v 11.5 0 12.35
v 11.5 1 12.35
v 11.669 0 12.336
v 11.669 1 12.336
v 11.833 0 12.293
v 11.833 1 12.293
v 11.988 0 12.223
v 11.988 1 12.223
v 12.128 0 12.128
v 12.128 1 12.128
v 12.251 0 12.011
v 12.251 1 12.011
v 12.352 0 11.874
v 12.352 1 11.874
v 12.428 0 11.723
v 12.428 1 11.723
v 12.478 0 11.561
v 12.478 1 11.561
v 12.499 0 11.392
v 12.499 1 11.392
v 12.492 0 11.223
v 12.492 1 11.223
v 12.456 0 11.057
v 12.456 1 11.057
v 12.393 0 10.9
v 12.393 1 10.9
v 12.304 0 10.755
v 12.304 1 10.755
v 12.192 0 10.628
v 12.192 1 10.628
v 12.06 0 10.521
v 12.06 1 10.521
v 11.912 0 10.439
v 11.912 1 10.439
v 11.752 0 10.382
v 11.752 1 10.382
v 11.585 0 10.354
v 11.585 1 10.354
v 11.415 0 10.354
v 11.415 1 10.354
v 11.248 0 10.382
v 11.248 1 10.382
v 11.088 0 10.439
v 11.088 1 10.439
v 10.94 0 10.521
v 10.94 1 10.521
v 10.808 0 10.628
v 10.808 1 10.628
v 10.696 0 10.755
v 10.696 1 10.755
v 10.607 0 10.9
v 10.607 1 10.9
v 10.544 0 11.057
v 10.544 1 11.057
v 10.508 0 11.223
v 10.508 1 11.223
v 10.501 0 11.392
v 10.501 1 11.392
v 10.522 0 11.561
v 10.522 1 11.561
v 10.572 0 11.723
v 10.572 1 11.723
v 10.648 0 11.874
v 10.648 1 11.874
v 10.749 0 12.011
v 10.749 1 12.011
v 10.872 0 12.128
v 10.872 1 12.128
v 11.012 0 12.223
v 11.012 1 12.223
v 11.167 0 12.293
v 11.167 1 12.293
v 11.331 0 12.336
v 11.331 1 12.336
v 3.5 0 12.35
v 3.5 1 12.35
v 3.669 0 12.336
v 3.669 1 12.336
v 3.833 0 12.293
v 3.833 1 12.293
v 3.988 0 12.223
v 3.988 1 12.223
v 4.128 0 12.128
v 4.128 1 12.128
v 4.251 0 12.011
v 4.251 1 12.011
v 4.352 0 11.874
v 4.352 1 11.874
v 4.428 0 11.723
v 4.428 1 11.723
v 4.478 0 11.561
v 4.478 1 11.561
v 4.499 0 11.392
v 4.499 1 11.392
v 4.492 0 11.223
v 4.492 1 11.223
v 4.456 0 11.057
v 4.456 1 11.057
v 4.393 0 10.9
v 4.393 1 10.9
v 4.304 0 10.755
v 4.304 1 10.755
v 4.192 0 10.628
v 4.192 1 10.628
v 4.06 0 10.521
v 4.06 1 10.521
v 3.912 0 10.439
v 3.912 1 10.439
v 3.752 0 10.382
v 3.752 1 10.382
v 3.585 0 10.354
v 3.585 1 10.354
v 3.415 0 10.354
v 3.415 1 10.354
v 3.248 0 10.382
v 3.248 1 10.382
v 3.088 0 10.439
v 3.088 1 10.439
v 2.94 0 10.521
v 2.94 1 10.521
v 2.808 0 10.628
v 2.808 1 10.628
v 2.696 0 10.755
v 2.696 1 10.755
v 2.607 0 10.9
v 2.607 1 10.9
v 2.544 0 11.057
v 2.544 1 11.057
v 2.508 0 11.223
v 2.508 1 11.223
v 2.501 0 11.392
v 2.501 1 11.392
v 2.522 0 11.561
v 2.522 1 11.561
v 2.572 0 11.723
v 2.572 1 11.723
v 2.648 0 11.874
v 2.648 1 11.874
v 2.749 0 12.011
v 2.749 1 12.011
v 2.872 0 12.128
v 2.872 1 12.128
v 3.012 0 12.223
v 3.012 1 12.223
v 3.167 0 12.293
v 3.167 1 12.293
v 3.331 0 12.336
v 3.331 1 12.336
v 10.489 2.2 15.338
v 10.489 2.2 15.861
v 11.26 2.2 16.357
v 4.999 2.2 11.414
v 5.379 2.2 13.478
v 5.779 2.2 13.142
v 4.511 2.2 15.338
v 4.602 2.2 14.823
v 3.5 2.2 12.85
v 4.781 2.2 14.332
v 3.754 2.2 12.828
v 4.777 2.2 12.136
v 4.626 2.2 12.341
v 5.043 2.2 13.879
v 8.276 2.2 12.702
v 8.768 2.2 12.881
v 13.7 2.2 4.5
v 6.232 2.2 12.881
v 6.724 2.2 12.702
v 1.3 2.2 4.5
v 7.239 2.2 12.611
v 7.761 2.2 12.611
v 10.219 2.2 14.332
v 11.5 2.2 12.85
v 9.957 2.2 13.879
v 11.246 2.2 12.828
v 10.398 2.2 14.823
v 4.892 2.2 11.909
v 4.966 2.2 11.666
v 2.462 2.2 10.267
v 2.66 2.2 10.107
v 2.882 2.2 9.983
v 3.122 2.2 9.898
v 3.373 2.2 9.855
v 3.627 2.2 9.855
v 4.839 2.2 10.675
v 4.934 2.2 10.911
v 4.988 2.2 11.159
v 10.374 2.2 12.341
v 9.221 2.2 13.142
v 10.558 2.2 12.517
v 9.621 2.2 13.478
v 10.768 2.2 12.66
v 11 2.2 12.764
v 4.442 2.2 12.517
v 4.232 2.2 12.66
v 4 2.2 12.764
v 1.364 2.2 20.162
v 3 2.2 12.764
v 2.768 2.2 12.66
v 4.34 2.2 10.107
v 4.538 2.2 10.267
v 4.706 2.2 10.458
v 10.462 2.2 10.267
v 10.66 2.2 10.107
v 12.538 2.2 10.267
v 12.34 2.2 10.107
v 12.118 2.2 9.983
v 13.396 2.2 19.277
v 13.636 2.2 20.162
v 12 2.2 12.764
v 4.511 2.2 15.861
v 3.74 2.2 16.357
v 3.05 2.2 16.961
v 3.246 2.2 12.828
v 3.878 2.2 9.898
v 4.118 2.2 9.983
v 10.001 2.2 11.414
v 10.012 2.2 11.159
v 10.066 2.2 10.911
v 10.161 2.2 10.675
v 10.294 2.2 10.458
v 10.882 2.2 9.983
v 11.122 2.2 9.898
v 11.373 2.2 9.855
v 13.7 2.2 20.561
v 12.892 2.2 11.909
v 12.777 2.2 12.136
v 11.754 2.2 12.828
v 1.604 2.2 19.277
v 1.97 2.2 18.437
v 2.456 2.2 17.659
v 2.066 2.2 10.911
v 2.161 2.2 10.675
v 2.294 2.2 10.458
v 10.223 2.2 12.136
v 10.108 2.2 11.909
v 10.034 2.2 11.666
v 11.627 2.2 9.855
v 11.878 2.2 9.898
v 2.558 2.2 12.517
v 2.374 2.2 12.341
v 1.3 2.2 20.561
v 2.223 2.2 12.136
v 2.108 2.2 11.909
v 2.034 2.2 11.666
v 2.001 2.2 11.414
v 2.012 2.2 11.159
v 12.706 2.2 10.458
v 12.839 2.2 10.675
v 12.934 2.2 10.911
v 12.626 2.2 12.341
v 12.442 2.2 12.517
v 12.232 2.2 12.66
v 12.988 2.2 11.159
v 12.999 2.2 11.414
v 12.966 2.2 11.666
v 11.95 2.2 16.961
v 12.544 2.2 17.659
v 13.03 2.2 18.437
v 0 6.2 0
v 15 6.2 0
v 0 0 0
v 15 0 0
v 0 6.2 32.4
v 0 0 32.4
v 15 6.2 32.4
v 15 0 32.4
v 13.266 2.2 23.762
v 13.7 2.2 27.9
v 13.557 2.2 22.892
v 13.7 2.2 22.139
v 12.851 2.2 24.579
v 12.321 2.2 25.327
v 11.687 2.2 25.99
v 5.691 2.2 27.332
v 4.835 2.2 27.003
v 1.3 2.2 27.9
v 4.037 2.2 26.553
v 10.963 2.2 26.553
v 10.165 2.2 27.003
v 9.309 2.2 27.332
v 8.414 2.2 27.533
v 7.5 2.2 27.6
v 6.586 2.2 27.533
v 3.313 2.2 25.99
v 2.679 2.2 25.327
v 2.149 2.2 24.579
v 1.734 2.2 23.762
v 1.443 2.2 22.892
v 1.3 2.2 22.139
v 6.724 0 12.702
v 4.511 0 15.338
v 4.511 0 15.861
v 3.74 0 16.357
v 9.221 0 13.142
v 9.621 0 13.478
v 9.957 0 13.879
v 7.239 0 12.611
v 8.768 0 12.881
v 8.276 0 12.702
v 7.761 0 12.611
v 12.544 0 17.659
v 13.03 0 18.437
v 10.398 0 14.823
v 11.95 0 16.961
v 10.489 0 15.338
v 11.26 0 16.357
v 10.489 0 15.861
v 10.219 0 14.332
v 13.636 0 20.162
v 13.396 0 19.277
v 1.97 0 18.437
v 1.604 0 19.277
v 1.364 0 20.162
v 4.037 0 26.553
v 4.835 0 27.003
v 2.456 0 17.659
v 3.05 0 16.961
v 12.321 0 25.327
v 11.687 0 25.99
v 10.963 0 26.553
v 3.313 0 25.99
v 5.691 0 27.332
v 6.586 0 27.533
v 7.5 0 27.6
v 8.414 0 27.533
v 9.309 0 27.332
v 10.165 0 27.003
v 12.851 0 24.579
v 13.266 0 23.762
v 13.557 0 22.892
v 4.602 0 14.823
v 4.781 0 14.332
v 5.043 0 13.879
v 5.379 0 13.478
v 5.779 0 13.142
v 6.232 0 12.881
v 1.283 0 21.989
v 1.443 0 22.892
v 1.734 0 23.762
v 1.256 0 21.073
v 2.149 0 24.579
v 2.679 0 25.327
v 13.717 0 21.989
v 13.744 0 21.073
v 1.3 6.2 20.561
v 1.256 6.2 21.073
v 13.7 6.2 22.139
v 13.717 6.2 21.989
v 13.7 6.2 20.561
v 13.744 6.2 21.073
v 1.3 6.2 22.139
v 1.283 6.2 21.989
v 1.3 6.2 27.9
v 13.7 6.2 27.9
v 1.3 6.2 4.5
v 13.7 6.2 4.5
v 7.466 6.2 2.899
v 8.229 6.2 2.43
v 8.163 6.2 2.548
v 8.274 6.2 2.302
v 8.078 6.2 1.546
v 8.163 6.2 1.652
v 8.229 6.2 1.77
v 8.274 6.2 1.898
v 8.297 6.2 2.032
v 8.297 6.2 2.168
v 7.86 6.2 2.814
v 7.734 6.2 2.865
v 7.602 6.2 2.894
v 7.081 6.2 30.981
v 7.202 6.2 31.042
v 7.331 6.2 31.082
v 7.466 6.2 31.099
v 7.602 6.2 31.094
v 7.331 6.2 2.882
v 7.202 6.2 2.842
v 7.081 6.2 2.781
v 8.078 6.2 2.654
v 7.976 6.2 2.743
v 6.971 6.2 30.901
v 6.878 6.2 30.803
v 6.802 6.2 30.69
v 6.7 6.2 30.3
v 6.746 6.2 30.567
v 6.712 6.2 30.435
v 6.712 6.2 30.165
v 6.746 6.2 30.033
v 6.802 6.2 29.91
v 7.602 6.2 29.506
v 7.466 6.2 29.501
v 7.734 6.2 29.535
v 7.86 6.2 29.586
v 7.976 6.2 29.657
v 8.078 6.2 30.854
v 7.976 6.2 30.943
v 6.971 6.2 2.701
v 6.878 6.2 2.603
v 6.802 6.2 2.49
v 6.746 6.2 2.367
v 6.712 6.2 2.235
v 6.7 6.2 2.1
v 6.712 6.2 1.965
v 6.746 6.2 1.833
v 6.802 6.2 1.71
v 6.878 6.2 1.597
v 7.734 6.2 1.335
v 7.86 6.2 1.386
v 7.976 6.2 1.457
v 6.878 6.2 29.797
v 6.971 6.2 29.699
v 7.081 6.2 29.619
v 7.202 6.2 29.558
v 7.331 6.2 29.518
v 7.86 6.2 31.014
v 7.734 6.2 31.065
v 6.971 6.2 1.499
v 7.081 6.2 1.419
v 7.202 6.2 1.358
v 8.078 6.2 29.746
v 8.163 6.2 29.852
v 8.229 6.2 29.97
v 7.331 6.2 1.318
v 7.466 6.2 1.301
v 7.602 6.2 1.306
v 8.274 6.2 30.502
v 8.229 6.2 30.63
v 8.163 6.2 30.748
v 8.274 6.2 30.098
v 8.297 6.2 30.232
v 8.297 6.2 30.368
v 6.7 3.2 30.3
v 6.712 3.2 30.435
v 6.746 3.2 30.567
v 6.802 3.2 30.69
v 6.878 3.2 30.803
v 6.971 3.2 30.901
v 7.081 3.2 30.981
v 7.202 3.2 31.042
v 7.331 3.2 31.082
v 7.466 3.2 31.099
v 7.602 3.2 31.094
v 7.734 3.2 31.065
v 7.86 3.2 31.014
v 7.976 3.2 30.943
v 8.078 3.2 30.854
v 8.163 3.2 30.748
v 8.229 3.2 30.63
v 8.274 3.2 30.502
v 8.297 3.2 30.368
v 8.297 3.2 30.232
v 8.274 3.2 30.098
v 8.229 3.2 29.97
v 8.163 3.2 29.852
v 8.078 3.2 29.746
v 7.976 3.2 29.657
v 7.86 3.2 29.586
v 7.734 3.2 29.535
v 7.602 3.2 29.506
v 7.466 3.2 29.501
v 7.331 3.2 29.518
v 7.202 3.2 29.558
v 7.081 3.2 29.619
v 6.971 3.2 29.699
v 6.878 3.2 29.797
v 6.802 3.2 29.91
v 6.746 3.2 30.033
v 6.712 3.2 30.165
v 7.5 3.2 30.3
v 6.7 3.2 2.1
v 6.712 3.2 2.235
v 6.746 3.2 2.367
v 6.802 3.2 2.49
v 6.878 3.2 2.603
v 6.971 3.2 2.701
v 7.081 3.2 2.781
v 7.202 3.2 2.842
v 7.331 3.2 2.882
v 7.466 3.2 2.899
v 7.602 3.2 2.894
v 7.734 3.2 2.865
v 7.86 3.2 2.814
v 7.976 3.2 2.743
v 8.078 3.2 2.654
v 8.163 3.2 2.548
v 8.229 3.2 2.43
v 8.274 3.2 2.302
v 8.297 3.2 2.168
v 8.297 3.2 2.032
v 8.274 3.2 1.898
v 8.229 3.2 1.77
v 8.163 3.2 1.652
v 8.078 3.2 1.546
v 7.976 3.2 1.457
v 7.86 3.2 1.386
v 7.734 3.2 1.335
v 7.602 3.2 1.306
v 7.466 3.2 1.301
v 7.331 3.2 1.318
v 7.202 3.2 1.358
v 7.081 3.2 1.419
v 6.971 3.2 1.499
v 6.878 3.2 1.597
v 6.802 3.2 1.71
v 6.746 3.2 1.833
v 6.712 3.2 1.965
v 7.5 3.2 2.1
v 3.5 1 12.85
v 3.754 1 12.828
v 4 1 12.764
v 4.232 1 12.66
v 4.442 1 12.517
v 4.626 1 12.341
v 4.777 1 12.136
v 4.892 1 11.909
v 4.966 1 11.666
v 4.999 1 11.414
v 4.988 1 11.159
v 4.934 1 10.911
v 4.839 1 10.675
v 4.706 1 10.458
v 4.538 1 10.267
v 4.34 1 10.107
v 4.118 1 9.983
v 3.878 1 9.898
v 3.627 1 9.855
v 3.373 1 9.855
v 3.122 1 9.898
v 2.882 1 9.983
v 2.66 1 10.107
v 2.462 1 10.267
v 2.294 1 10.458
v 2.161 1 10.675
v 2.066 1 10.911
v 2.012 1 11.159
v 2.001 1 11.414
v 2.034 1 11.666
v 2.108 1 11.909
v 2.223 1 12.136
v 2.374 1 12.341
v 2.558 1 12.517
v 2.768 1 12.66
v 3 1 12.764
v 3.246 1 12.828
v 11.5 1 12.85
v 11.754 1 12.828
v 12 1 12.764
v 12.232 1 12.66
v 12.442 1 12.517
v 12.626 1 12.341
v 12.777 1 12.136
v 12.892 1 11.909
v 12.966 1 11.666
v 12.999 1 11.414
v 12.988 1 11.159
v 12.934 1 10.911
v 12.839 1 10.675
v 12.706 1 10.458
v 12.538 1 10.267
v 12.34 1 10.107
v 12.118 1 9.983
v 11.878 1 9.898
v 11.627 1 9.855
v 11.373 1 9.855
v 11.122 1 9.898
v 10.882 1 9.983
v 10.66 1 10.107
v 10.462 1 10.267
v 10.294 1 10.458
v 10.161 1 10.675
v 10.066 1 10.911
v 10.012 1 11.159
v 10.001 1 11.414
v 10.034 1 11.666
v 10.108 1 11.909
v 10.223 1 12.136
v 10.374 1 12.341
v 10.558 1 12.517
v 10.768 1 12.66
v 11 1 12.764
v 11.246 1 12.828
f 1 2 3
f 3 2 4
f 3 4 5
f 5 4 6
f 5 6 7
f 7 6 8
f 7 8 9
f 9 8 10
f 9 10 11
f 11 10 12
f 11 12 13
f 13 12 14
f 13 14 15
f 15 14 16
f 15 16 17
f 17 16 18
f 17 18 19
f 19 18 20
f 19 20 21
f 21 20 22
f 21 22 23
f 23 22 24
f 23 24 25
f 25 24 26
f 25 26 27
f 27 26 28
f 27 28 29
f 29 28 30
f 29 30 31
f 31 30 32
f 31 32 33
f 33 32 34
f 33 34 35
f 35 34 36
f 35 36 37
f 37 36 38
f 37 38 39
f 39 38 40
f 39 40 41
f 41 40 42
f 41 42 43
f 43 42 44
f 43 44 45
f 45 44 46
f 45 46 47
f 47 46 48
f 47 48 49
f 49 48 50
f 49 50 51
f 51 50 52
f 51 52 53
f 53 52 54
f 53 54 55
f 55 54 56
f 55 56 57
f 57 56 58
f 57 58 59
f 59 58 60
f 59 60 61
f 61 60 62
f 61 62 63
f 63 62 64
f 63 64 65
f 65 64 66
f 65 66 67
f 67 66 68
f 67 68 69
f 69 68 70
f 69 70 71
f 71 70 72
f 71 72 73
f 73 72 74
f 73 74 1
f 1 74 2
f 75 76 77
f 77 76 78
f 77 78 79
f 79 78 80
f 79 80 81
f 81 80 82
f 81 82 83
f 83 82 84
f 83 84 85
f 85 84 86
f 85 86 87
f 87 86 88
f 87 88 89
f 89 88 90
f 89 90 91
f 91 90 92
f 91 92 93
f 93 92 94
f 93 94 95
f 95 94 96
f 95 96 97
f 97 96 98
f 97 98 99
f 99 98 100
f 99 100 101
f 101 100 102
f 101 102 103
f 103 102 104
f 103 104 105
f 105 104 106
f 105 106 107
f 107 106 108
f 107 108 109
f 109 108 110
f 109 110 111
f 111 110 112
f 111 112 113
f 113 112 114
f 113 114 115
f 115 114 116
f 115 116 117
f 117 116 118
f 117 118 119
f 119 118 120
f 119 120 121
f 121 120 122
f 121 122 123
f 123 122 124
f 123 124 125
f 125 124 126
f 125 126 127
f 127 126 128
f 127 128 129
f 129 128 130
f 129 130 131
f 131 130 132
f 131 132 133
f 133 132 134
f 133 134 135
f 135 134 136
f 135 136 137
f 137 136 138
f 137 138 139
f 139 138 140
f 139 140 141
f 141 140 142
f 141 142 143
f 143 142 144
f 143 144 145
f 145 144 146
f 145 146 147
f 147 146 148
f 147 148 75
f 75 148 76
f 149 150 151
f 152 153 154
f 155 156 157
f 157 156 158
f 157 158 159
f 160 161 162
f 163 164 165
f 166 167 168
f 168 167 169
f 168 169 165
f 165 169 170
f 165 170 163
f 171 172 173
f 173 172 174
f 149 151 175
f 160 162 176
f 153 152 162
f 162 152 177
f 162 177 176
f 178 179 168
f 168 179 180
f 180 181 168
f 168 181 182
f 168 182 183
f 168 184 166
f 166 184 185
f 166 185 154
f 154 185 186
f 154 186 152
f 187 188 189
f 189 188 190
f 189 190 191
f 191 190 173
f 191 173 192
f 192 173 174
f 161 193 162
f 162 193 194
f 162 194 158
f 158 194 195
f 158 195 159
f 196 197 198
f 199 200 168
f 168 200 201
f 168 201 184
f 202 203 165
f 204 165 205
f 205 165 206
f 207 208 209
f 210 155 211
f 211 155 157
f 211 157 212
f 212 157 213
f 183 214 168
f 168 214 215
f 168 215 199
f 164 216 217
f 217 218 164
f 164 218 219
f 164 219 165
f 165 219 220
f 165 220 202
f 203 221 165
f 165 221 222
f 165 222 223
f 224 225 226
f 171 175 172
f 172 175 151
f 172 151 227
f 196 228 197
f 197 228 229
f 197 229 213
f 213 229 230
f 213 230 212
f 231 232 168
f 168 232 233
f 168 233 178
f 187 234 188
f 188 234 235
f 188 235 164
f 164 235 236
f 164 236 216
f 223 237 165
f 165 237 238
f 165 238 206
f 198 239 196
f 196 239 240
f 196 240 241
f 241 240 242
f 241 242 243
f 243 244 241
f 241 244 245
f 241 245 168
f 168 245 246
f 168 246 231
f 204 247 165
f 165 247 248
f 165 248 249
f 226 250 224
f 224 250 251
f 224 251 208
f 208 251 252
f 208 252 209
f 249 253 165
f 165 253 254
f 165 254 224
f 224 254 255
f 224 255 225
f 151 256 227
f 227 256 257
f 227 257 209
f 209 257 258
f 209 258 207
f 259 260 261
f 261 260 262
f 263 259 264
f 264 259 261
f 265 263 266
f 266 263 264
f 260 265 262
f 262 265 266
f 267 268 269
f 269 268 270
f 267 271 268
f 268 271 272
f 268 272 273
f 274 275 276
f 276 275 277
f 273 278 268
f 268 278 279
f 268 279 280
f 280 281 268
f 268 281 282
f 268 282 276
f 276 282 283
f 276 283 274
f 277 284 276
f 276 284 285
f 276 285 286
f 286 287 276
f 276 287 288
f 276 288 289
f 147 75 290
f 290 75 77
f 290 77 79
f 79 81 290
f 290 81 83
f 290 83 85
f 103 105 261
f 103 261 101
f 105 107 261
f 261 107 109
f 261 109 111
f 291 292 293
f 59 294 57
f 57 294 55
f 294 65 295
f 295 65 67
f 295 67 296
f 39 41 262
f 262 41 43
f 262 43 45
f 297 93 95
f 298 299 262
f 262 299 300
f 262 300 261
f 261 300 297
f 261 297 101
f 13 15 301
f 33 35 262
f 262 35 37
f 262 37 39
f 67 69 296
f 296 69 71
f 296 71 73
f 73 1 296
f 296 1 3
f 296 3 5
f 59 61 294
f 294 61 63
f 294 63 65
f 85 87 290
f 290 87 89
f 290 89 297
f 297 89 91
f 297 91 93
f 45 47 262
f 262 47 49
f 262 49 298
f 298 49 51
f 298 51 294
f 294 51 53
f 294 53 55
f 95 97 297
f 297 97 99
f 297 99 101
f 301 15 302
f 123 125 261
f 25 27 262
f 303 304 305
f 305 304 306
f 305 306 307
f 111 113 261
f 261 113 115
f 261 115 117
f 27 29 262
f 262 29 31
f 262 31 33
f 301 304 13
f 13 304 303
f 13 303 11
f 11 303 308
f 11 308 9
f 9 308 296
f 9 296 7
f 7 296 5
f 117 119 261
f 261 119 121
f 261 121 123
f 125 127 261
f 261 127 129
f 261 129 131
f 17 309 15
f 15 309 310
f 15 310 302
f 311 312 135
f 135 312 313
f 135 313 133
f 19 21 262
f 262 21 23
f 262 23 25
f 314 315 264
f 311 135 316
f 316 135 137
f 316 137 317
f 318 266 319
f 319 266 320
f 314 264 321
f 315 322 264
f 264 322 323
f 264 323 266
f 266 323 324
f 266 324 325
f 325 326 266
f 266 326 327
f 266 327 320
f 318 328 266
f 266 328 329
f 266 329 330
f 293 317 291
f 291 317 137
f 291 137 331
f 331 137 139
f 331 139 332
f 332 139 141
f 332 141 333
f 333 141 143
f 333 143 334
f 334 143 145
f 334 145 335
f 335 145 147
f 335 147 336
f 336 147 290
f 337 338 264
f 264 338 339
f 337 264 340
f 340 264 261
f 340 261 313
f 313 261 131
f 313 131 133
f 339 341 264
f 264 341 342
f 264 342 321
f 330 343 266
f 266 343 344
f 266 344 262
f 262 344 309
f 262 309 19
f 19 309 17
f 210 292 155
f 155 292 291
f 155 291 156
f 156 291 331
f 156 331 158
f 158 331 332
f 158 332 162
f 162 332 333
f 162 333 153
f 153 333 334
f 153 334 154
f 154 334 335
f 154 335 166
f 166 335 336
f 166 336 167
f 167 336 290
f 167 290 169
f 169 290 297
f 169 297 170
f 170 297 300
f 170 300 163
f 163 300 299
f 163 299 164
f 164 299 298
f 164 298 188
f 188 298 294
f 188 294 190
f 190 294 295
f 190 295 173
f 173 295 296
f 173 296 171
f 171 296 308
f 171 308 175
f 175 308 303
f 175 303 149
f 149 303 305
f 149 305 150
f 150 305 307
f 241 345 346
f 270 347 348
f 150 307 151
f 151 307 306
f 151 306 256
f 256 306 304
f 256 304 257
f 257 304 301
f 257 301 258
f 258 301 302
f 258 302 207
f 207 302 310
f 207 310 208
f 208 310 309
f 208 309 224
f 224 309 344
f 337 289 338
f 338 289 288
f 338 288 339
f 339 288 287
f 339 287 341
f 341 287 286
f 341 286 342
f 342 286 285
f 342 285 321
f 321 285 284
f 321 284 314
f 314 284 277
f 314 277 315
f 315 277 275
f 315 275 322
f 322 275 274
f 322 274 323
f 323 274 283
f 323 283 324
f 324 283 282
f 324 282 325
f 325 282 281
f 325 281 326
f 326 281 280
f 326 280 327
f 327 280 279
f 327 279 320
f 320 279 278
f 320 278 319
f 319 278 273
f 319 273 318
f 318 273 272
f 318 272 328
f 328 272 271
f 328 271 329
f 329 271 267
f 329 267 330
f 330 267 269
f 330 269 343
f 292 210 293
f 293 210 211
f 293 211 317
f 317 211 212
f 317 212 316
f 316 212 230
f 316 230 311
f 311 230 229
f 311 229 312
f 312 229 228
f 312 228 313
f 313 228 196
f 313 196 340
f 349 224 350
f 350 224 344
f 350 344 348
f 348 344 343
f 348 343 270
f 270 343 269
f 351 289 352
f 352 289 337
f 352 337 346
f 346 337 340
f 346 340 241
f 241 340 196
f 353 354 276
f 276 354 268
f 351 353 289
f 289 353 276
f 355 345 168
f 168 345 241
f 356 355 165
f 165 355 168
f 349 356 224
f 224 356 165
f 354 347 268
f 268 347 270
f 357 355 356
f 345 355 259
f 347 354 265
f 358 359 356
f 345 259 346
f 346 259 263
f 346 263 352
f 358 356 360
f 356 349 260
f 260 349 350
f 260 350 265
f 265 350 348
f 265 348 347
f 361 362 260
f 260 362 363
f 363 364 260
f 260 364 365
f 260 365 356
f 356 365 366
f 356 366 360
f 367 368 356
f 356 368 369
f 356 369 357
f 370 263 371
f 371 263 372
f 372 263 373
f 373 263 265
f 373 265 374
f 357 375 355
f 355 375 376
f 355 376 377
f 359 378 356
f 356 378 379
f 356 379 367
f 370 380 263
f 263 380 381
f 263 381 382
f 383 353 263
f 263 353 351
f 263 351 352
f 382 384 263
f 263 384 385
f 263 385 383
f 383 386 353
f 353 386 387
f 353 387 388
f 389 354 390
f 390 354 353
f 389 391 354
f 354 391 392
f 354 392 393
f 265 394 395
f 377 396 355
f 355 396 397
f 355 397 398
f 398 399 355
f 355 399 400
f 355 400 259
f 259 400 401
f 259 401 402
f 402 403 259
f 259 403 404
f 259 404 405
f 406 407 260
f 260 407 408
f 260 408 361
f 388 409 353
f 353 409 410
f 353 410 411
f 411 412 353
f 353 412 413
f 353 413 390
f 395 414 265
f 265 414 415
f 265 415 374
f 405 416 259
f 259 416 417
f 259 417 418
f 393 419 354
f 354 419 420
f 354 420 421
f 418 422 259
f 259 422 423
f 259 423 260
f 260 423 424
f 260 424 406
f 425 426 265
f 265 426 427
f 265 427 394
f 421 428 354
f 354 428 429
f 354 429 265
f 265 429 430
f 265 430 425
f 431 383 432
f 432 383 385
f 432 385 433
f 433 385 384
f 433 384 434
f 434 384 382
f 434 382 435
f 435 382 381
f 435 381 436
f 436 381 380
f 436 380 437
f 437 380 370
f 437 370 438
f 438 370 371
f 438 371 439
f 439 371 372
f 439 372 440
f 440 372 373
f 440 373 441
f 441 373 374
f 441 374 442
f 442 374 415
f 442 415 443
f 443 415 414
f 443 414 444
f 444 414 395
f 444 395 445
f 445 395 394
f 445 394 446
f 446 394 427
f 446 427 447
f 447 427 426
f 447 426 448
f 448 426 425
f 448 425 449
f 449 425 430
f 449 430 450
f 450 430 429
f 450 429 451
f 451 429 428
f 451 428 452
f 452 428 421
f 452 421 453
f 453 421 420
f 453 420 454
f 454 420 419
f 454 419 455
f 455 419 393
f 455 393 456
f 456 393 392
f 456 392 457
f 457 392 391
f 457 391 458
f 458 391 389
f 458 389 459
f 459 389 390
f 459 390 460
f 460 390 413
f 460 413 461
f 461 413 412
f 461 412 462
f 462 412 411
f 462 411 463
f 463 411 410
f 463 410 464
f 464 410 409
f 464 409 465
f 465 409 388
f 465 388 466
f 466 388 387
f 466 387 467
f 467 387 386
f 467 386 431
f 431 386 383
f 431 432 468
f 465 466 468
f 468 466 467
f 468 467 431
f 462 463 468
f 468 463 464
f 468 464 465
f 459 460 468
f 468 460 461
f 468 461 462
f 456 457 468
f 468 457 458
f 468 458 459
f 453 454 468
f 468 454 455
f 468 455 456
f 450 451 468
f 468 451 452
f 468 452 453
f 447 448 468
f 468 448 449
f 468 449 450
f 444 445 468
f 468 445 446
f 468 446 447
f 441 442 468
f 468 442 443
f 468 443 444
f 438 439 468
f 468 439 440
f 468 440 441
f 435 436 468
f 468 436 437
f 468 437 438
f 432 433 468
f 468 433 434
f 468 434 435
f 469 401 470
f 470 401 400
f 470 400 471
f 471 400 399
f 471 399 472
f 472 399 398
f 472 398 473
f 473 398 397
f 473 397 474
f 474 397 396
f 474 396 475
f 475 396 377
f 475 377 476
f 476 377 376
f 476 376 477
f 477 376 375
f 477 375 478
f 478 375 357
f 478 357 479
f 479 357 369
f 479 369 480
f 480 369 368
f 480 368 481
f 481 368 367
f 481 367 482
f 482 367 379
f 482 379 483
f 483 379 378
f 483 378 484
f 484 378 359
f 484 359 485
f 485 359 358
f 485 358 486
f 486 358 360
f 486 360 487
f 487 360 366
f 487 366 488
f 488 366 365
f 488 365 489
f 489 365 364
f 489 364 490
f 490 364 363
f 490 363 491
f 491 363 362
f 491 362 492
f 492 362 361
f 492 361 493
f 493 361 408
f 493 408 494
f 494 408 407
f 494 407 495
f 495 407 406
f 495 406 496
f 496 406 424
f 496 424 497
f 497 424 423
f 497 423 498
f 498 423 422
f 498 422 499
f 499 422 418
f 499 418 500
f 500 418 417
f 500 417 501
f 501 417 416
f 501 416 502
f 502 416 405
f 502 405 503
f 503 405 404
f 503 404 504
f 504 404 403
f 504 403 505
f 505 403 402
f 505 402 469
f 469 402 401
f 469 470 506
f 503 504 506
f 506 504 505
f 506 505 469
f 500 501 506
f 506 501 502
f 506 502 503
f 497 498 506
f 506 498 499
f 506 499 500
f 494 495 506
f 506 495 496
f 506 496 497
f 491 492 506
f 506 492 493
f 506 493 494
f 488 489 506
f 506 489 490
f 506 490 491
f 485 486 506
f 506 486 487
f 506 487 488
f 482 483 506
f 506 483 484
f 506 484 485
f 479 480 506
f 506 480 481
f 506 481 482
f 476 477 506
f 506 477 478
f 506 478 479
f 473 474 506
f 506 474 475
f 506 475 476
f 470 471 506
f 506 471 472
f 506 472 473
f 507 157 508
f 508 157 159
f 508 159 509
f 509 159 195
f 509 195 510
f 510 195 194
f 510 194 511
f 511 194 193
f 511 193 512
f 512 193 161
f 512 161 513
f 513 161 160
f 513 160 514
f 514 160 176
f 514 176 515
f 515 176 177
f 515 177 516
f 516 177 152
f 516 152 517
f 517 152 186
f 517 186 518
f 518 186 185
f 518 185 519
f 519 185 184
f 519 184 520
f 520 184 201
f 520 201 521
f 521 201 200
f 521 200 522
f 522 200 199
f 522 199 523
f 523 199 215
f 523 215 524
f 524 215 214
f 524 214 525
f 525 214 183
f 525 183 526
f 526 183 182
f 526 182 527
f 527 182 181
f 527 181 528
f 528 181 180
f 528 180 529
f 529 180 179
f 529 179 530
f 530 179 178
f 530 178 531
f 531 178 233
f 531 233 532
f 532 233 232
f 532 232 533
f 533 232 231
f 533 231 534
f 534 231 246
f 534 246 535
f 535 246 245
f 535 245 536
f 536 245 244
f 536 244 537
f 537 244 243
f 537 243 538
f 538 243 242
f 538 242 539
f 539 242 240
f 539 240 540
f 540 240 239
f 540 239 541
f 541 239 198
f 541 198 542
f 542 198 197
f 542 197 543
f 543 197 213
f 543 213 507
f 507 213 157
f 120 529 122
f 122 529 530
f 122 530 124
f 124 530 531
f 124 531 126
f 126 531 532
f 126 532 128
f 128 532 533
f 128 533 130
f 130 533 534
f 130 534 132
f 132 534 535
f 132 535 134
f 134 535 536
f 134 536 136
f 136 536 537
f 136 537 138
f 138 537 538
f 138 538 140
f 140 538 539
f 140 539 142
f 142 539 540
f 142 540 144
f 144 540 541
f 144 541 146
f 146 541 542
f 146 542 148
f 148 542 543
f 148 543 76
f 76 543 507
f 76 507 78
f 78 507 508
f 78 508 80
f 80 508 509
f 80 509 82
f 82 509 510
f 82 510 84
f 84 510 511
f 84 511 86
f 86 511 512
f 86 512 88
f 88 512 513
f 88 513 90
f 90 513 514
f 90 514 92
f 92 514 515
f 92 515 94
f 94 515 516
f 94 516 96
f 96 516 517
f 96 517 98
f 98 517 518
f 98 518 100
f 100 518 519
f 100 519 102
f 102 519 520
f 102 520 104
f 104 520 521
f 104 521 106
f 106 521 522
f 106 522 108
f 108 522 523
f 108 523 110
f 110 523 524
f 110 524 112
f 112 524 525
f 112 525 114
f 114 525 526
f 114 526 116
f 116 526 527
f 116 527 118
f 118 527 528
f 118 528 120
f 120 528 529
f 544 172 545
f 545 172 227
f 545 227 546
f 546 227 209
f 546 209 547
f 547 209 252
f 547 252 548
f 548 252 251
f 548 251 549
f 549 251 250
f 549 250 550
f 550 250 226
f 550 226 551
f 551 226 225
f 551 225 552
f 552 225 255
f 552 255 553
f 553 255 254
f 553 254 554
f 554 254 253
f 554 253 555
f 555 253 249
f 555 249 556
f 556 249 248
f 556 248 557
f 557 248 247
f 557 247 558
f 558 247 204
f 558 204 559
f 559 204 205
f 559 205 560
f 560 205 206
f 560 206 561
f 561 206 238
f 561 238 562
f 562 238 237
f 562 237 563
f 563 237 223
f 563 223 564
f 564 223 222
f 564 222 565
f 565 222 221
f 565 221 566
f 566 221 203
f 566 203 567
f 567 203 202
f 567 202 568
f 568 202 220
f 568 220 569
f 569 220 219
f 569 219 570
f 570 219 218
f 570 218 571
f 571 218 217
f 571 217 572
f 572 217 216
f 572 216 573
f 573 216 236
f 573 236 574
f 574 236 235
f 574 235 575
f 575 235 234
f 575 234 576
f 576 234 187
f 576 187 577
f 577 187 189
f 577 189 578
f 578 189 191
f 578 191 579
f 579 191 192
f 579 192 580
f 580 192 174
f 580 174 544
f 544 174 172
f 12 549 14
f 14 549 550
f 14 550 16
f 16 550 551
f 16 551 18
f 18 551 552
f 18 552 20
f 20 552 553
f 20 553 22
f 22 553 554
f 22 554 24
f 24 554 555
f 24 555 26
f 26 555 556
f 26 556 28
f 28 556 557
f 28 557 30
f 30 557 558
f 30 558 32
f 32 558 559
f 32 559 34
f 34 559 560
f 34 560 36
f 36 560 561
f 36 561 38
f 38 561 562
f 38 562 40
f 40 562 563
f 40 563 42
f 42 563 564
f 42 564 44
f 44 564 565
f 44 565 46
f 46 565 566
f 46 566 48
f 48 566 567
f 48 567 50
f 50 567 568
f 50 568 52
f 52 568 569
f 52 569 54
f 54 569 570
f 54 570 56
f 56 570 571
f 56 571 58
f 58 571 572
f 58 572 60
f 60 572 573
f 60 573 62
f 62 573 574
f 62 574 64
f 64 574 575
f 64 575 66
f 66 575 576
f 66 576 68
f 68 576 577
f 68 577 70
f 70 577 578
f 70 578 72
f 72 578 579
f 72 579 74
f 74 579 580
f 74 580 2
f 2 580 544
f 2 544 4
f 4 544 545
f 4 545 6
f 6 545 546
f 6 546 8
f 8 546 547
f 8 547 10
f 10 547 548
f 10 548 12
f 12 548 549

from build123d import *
from build123d.topology import SkipClean

# Parameters (mm, degrees)
SKETCH_1_W          = 15
SKETCH_1_H          = 32.4
EXTRUDE_1_DEPTH     = 2.2
SKETCH_1_3_R        = 6.25
SKETCH_1_3_R_2      = 3
CUT_EXTRUDE_1_DEPTH = 36.771497033
SKETCH_2_W          = 15
SKETCH_2_H          = 32.4
EXTRUDE_2_DEPTH     = 4
SKETCH_3_R          = 0.8
CUT_EXTRUDE_2_DEPTH = 3
SKETCH_4_R          = 1
CUT_EXTRUDE_3_DEPTH = 36.927148509
SKETCH_4_3_R        = 1.5
SKETCH_4_3_R_2      = 1
CUT_EXTRUDE_4_DEPTH = 1.2


with BuildPart() as part:
    # 草图1 → 凸台-拉伸1 (new body)
    with BuildSketch(Plane(origin=(0, 0, 0), x_dir=(1, 0, 0), z_dir=(0, 1, 0))):
        with Locations((7.5, -16.2)):
            Rectangle(SKETCH_1_W, SKETCH_1_H)
    extrude(amount=EXTRUDE_1_DEPTH)

    # 草图1<3> → 切除-拉伸1 (cut, through all)
    with BuildSketch(Plane(origin=(0, 0, 0), x_dir=(1, 0, 0), z_dir=(0, 1, 0))):
        with Locations((7.5, -21.35)):
            Circle(SKETCH_1_3_R)
        with Locations((7.5, -15.6)):
            Circle(SKETCH_1_3_R_2)
    extrude(amount=CUT_EXTRUDE_1_DEPTH, mode=Mode.SUBTRACT)

    # 草图2 → 凸台-拉伸2 (add)
    with SkipClean():  # the faces are left unmerged after this step: merging them gives an invalid solid
        with BuildSketch(Plane(origin=(0, 2.2, 0), x_dir=(1, 0, 0), z_dir=(0, 1, 0))):
            with Locations((7.5, -16.2)):
                Rectangle(SKETCH_2_W, SKETCH_2_H)
            with BuildLine():
                Line((13.7, -27.9), (1.3, -27.9))
                Line((1.3, -27.9), (1.3, -22.138986692))
                ThreePointArc((1.3, -22.138986692), (1.25, -21.35), (1.3, -20.561013308))
                Line((1.3, -20.561013308), (1.3, -4.5))
                Line((1.3, -4.5), (13.7, -4.5))
                Line((13.7, -4.5), (13.7, -20.561013308))
                ThreePointArc((13.7, -20.561013308), (13.75, -21.35), (13.7, -22.138986692))
                Line((13.7, -22.138986692), (13.7, -27.9))
            make_face(mode=Mode.SUBTRACT)
        extrude(amount=EXTRUDE_2_DEPTH)

    # 草图3 → 切除-拉伸2 (cut)
    with SkipClean():  # the faces are left unmerged after this step: merging them gives an invalid solid
        with BuildSketch(Plane(origin=(0, 6.2, 0), x_dir=(1, 0, 0), z_dir=(0, 1, 0))):
            with Locations((7.5, -30.3)):
                Circle(SKETCH_3_R)
            with Locations((7.5, -2.1)):
                Circle(SKETCH_3_R)
        extrude(amount=-CUT_EXTRUDE_2_DEPTH, mode=Mode.SUBTRACT)

    # 草图4 → 切除-拉伸3 (cut, through all)
    with SkipClean():  # the faces are left unmerged after this step: merging them gives an invalid solid
        with BuildSketch(Plane(origin=(0, 2.2, 0), x_dir=(1, 0, 0), z_dir=(0, 1, 0))):
            with Locations((11.5, -11.35)):
                Circle(SKETCH_4_R)
            with Locations((3.5, -11.35)):
                Circle(SKETCH_4_R)
        extrude(amount=-CUT_EXTRUDE_3_DEPTH, mode=Mode.SUBTRACT)

    # 草图4<3> → 切除-拉伸4 (cut)
    # profile 1 of 2: a face of its own
    with SkipClean():  # the faces are left unmerged after this step: merging them gives an invalid solid
        with BuildSketch(Plane(origin=(0, 2.2, 0), x_dir=(1, 0, 0), z_dir=(0, 1, 0))):
            with Locations((11.5, -11.35)):
                Circle(SKETCH_4_3_R)
            with Locations((11.5, -11.35)):
                Circle(SKETCH_4_3_R_2, mode=Mode.SUBTRACT)
        # profile 2 of 2: a face of its own
        with BuildSketch(Plane(origin=(0, 2.2, 0), x_dir=(1, 0, 0), z_dir=(0, 1, 0))):
            with Locations((3.5, -11.35)):
                Circle(SKETCH_4_3_R)
            with Locations((3.5, -11.35)):
                Circle(SKETCH_4_3_R_2, mode=Mode.SUBTRACT)
        extrude(amount=-CUT_EXTRUDE_4_DEPTH, mode=Mode.SUBTRACT)


solid = part.part
